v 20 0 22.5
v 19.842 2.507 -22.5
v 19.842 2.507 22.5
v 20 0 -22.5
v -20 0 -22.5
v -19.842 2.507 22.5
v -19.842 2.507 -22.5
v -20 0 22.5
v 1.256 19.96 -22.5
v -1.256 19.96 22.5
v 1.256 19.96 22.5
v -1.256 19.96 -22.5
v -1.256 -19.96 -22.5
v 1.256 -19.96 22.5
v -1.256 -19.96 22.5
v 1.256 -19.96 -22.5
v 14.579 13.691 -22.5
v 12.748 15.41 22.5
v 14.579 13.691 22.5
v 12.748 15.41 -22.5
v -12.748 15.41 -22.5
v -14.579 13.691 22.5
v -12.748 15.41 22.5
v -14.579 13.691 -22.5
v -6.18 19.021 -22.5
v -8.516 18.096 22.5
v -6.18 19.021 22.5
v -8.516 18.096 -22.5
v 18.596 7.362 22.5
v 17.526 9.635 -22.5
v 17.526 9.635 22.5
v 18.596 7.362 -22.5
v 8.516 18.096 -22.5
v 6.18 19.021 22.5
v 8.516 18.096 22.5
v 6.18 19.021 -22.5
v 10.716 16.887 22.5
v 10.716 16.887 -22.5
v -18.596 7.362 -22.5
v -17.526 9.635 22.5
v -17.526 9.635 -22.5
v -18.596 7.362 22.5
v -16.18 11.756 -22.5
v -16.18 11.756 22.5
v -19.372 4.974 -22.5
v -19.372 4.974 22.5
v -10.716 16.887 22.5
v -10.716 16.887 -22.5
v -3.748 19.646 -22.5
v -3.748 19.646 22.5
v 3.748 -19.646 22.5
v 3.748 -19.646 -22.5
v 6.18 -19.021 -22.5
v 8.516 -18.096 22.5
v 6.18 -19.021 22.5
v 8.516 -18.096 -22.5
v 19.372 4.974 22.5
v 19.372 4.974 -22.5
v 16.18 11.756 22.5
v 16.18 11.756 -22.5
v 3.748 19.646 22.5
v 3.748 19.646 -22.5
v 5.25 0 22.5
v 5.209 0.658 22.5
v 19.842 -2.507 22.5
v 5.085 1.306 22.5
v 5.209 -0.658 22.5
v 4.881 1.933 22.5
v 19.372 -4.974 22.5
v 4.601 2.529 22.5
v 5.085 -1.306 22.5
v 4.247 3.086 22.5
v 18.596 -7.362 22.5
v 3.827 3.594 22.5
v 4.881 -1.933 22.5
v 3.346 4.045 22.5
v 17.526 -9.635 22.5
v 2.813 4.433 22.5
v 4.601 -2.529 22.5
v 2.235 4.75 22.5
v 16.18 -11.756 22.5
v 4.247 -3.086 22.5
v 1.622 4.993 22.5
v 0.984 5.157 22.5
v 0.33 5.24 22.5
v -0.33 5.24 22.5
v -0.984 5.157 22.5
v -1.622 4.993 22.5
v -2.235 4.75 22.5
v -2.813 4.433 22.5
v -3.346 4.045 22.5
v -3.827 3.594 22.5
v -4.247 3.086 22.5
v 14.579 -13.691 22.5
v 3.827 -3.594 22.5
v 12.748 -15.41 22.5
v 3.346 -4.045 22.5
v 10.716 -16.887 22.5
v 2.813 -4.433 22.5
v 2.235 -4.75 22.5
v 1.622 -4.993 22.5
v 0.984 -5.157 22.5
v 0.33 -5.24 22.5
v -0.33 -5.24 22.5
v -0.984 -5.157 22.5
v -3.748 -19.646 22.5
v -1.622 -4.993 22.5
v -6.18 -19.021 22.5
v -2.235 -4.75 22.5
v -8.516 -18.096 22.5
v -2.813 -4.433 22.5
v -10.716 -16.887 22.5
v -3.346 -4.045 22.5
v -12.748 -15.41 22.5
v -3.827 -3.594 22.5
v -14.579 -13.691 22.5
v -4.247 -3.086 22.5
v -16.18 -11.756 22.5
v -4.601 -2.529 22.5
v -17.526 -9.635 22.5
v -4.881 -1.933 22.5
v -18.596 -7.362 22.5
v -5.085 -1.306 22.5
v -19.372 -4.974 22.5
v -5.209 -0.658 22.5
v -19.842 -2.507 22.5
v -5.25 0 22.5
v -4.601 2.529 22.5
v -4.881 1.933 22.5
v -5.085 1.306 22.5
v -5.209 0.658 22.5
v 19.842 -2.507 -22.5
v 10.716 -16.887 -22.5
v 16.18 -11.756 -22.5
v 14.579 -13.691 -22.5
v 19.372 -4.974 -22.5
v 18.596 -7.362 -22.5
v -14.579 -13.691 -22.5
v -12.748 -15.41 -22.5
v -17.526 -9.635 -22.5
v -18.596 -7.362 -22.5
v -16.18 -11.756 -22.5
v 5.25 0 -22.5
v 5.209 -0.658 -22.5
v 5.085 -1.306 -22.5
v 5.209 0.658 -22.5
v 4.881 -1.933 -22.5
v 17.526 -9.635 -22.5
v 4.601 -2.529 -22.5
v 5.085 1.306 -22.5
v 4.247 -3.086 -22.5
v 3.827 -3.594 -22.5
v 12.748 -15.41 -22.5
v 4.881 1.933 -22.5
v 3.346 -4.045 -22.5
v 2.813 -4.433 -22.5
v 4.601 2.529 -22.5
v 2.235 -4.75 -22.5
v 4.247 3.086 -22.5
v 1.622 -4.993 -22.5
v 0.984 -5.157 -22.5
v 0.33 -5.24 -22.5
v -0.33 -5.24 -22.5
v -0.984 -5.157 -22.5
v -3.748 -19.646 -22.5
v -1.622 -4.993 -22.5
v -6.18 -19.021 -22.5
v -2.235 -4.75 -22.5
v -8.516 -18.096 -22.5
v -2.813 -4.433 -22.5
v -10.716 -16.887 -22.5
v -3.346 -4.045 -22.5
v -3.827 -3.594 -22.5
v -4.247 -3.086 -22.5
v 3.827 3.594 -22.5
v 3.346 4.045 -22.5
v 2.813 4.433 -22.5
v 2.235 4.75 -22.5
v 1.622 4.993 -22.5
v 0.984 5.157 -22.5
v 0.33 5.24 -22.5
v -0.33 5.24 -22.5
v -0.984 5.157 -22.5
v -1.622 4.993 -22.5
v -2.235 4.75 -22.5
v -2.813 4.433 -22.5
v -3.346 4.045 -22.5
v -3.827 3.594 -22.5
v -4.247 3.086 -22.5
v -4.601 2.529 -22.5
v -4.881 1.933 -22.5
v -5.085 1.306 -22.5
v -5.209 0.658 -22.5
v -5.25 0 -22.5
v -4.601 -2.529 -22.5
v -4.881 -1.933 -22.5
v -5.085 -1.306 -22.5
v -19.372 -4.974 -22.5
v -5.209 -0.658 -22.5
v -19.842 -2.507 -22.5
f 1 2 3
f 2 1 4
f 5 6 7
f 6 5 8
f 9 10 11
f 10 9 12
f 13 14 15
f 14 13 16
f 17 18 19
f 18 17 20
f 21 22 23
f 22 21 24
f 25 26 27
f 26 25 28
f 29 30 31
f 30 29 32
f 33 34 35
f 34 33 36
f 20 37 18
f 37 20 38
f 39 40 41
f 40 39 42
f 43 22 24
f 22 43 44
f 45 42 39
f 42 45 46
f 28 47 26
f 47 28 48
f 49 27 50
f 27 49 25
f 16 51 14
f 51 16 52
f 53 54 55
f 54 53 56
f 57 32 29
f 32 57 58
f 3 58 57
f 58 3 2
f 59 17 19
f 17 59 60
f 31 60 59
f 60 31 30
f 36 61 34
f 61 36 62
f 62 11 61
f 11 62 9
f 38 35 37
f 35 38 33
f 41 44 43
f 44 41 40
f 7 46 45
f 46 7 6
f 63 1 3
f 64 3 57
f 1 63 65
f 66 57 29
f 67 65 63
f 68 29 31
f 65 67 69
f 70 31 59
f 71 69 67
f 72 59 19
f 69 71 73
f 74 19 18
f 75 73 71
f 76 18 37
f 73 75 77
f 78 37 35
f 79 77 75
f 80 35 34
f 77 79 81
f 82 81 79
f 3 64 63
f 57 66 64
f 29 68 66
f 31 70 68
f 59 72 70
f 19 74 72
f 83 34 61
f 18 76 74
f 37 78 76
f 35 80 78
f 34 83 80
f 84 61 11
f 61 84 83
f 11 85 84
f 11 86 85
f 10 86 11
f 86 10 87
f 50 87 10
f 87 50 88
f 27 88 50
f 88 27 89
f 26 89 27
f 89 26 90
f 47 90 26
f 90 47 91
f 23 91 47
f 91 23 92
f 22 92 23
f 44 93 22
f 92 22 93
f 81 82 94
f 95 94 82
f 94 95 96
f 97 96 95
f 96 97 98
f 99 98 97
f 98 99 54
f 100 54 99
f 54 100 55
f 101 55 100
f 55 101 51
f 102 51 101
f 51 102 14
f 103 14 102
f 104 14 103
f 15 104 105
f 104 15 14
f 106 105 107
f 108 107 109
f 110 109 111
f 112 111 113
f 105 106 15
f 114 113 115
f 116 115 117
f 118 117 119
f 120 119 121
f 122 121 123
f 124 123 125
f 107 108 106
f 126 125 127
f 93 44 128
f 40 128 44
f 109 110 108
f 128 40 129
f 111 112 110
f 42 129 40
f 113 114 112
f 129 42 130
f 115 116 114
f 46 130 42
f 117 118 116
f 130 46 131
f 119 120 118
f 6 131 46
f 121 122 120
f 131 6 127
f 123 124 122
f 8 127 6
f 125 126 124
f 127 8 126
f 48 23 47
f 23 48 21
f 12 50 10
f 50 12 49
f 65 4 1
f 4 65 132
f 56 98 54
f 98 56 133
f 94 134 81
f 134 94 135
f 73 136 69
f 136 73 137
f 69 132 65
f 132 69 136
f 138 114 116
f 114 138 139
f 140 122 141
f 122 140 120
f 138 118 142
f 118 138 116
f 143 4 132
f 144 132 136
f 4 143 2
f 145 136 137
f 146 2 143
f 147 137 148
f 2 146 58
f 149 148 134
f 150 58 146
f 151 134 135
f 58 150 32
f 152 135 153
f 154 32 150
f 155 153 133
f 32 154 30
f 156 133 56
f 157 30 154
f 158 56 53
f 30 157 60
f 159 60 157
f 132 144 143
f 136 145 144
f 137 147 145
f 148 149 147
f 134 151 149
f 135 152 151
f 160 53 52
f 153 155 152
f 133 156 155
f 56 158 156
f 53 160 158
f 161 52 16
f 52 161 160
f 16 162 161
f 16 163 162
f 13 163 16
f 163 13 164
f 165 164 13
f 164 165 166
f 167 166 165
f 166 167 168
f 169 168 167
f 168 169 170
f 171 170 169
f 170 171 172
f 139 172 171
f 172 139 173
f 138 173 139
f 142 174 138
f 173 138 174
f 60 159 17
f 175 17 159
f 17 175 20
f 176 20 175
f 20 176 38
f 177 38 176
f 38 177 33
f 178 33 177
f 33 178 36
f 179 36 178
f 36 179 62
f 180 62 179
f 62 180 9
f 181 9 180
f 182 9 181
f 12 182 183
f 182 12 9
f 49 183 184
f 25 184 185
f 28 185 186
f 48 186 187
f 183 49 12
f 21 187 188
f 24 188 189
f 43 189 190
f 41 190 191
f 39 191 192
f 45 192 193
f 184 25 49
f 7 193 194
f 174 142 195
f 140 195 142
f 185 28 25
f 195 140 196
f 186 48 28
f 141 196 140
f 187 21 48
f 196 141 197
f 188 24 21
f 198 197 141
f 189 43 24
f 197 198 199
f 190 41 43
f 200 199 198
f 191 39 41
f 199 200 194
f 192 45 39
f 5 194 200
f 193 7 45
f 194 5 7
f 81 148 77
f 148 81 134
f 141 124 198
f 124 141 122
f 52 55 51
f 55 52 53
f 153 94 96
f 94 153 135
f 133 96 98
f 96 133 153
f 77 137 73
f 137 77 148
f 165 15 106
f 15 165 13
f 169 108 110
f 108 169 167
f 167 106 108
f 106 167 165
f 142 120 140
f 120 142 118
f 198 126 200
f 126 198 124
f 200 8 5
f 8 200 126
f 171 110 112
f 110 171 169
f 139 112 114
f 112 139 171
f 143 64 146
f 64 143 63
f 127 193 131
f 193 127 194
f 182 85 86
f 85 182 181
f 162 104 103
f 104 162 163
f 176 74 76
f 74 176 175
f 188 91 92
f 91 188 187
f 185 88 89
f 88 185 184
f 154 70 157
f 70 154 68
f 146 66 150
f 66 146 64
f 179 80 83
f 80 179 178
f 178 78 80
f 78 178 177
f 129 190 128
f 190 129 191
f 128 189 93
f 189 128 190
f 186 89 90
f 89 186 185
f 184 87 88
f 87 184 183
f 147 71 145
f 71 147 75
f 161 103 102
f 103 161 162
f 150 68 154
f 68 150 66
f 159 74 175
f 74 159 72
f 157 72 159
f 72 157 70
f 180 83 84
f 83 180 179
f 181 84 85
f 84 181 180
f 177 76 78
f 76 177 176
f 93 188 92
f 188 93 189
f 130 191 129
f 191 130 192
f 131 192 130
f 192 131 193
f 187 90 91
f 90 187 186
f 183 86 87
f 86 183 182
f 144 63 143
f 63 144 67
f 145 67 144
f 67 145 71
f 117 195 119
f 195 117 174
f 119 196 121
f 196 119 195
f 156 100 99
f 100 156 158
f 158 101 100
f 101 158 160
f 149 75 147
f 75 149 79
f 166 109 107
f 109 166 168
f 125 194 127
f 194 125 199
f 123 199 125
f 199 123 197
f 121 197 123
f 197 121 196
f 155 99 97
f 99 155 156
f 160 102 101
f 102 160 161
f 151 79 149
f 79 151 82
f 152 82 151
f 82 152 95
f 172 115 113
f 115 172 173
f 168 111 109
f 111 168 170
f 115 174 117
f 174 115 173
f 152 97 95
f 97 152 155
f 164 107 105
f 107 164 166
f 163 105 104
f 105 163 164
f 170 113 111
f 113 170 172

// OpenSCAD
$fn = 50;


difference() {
	union() {
		translate(v = [0, 0, -22.5000000000]) {
			cylinder(h = 45, r = 20.0000000000);
		}
	}
	union() {
		translate(v = [0, 0, -100.0000000000]) {
			cylinder(h = 200, r = 5.2500000000);
		}
	}
}
